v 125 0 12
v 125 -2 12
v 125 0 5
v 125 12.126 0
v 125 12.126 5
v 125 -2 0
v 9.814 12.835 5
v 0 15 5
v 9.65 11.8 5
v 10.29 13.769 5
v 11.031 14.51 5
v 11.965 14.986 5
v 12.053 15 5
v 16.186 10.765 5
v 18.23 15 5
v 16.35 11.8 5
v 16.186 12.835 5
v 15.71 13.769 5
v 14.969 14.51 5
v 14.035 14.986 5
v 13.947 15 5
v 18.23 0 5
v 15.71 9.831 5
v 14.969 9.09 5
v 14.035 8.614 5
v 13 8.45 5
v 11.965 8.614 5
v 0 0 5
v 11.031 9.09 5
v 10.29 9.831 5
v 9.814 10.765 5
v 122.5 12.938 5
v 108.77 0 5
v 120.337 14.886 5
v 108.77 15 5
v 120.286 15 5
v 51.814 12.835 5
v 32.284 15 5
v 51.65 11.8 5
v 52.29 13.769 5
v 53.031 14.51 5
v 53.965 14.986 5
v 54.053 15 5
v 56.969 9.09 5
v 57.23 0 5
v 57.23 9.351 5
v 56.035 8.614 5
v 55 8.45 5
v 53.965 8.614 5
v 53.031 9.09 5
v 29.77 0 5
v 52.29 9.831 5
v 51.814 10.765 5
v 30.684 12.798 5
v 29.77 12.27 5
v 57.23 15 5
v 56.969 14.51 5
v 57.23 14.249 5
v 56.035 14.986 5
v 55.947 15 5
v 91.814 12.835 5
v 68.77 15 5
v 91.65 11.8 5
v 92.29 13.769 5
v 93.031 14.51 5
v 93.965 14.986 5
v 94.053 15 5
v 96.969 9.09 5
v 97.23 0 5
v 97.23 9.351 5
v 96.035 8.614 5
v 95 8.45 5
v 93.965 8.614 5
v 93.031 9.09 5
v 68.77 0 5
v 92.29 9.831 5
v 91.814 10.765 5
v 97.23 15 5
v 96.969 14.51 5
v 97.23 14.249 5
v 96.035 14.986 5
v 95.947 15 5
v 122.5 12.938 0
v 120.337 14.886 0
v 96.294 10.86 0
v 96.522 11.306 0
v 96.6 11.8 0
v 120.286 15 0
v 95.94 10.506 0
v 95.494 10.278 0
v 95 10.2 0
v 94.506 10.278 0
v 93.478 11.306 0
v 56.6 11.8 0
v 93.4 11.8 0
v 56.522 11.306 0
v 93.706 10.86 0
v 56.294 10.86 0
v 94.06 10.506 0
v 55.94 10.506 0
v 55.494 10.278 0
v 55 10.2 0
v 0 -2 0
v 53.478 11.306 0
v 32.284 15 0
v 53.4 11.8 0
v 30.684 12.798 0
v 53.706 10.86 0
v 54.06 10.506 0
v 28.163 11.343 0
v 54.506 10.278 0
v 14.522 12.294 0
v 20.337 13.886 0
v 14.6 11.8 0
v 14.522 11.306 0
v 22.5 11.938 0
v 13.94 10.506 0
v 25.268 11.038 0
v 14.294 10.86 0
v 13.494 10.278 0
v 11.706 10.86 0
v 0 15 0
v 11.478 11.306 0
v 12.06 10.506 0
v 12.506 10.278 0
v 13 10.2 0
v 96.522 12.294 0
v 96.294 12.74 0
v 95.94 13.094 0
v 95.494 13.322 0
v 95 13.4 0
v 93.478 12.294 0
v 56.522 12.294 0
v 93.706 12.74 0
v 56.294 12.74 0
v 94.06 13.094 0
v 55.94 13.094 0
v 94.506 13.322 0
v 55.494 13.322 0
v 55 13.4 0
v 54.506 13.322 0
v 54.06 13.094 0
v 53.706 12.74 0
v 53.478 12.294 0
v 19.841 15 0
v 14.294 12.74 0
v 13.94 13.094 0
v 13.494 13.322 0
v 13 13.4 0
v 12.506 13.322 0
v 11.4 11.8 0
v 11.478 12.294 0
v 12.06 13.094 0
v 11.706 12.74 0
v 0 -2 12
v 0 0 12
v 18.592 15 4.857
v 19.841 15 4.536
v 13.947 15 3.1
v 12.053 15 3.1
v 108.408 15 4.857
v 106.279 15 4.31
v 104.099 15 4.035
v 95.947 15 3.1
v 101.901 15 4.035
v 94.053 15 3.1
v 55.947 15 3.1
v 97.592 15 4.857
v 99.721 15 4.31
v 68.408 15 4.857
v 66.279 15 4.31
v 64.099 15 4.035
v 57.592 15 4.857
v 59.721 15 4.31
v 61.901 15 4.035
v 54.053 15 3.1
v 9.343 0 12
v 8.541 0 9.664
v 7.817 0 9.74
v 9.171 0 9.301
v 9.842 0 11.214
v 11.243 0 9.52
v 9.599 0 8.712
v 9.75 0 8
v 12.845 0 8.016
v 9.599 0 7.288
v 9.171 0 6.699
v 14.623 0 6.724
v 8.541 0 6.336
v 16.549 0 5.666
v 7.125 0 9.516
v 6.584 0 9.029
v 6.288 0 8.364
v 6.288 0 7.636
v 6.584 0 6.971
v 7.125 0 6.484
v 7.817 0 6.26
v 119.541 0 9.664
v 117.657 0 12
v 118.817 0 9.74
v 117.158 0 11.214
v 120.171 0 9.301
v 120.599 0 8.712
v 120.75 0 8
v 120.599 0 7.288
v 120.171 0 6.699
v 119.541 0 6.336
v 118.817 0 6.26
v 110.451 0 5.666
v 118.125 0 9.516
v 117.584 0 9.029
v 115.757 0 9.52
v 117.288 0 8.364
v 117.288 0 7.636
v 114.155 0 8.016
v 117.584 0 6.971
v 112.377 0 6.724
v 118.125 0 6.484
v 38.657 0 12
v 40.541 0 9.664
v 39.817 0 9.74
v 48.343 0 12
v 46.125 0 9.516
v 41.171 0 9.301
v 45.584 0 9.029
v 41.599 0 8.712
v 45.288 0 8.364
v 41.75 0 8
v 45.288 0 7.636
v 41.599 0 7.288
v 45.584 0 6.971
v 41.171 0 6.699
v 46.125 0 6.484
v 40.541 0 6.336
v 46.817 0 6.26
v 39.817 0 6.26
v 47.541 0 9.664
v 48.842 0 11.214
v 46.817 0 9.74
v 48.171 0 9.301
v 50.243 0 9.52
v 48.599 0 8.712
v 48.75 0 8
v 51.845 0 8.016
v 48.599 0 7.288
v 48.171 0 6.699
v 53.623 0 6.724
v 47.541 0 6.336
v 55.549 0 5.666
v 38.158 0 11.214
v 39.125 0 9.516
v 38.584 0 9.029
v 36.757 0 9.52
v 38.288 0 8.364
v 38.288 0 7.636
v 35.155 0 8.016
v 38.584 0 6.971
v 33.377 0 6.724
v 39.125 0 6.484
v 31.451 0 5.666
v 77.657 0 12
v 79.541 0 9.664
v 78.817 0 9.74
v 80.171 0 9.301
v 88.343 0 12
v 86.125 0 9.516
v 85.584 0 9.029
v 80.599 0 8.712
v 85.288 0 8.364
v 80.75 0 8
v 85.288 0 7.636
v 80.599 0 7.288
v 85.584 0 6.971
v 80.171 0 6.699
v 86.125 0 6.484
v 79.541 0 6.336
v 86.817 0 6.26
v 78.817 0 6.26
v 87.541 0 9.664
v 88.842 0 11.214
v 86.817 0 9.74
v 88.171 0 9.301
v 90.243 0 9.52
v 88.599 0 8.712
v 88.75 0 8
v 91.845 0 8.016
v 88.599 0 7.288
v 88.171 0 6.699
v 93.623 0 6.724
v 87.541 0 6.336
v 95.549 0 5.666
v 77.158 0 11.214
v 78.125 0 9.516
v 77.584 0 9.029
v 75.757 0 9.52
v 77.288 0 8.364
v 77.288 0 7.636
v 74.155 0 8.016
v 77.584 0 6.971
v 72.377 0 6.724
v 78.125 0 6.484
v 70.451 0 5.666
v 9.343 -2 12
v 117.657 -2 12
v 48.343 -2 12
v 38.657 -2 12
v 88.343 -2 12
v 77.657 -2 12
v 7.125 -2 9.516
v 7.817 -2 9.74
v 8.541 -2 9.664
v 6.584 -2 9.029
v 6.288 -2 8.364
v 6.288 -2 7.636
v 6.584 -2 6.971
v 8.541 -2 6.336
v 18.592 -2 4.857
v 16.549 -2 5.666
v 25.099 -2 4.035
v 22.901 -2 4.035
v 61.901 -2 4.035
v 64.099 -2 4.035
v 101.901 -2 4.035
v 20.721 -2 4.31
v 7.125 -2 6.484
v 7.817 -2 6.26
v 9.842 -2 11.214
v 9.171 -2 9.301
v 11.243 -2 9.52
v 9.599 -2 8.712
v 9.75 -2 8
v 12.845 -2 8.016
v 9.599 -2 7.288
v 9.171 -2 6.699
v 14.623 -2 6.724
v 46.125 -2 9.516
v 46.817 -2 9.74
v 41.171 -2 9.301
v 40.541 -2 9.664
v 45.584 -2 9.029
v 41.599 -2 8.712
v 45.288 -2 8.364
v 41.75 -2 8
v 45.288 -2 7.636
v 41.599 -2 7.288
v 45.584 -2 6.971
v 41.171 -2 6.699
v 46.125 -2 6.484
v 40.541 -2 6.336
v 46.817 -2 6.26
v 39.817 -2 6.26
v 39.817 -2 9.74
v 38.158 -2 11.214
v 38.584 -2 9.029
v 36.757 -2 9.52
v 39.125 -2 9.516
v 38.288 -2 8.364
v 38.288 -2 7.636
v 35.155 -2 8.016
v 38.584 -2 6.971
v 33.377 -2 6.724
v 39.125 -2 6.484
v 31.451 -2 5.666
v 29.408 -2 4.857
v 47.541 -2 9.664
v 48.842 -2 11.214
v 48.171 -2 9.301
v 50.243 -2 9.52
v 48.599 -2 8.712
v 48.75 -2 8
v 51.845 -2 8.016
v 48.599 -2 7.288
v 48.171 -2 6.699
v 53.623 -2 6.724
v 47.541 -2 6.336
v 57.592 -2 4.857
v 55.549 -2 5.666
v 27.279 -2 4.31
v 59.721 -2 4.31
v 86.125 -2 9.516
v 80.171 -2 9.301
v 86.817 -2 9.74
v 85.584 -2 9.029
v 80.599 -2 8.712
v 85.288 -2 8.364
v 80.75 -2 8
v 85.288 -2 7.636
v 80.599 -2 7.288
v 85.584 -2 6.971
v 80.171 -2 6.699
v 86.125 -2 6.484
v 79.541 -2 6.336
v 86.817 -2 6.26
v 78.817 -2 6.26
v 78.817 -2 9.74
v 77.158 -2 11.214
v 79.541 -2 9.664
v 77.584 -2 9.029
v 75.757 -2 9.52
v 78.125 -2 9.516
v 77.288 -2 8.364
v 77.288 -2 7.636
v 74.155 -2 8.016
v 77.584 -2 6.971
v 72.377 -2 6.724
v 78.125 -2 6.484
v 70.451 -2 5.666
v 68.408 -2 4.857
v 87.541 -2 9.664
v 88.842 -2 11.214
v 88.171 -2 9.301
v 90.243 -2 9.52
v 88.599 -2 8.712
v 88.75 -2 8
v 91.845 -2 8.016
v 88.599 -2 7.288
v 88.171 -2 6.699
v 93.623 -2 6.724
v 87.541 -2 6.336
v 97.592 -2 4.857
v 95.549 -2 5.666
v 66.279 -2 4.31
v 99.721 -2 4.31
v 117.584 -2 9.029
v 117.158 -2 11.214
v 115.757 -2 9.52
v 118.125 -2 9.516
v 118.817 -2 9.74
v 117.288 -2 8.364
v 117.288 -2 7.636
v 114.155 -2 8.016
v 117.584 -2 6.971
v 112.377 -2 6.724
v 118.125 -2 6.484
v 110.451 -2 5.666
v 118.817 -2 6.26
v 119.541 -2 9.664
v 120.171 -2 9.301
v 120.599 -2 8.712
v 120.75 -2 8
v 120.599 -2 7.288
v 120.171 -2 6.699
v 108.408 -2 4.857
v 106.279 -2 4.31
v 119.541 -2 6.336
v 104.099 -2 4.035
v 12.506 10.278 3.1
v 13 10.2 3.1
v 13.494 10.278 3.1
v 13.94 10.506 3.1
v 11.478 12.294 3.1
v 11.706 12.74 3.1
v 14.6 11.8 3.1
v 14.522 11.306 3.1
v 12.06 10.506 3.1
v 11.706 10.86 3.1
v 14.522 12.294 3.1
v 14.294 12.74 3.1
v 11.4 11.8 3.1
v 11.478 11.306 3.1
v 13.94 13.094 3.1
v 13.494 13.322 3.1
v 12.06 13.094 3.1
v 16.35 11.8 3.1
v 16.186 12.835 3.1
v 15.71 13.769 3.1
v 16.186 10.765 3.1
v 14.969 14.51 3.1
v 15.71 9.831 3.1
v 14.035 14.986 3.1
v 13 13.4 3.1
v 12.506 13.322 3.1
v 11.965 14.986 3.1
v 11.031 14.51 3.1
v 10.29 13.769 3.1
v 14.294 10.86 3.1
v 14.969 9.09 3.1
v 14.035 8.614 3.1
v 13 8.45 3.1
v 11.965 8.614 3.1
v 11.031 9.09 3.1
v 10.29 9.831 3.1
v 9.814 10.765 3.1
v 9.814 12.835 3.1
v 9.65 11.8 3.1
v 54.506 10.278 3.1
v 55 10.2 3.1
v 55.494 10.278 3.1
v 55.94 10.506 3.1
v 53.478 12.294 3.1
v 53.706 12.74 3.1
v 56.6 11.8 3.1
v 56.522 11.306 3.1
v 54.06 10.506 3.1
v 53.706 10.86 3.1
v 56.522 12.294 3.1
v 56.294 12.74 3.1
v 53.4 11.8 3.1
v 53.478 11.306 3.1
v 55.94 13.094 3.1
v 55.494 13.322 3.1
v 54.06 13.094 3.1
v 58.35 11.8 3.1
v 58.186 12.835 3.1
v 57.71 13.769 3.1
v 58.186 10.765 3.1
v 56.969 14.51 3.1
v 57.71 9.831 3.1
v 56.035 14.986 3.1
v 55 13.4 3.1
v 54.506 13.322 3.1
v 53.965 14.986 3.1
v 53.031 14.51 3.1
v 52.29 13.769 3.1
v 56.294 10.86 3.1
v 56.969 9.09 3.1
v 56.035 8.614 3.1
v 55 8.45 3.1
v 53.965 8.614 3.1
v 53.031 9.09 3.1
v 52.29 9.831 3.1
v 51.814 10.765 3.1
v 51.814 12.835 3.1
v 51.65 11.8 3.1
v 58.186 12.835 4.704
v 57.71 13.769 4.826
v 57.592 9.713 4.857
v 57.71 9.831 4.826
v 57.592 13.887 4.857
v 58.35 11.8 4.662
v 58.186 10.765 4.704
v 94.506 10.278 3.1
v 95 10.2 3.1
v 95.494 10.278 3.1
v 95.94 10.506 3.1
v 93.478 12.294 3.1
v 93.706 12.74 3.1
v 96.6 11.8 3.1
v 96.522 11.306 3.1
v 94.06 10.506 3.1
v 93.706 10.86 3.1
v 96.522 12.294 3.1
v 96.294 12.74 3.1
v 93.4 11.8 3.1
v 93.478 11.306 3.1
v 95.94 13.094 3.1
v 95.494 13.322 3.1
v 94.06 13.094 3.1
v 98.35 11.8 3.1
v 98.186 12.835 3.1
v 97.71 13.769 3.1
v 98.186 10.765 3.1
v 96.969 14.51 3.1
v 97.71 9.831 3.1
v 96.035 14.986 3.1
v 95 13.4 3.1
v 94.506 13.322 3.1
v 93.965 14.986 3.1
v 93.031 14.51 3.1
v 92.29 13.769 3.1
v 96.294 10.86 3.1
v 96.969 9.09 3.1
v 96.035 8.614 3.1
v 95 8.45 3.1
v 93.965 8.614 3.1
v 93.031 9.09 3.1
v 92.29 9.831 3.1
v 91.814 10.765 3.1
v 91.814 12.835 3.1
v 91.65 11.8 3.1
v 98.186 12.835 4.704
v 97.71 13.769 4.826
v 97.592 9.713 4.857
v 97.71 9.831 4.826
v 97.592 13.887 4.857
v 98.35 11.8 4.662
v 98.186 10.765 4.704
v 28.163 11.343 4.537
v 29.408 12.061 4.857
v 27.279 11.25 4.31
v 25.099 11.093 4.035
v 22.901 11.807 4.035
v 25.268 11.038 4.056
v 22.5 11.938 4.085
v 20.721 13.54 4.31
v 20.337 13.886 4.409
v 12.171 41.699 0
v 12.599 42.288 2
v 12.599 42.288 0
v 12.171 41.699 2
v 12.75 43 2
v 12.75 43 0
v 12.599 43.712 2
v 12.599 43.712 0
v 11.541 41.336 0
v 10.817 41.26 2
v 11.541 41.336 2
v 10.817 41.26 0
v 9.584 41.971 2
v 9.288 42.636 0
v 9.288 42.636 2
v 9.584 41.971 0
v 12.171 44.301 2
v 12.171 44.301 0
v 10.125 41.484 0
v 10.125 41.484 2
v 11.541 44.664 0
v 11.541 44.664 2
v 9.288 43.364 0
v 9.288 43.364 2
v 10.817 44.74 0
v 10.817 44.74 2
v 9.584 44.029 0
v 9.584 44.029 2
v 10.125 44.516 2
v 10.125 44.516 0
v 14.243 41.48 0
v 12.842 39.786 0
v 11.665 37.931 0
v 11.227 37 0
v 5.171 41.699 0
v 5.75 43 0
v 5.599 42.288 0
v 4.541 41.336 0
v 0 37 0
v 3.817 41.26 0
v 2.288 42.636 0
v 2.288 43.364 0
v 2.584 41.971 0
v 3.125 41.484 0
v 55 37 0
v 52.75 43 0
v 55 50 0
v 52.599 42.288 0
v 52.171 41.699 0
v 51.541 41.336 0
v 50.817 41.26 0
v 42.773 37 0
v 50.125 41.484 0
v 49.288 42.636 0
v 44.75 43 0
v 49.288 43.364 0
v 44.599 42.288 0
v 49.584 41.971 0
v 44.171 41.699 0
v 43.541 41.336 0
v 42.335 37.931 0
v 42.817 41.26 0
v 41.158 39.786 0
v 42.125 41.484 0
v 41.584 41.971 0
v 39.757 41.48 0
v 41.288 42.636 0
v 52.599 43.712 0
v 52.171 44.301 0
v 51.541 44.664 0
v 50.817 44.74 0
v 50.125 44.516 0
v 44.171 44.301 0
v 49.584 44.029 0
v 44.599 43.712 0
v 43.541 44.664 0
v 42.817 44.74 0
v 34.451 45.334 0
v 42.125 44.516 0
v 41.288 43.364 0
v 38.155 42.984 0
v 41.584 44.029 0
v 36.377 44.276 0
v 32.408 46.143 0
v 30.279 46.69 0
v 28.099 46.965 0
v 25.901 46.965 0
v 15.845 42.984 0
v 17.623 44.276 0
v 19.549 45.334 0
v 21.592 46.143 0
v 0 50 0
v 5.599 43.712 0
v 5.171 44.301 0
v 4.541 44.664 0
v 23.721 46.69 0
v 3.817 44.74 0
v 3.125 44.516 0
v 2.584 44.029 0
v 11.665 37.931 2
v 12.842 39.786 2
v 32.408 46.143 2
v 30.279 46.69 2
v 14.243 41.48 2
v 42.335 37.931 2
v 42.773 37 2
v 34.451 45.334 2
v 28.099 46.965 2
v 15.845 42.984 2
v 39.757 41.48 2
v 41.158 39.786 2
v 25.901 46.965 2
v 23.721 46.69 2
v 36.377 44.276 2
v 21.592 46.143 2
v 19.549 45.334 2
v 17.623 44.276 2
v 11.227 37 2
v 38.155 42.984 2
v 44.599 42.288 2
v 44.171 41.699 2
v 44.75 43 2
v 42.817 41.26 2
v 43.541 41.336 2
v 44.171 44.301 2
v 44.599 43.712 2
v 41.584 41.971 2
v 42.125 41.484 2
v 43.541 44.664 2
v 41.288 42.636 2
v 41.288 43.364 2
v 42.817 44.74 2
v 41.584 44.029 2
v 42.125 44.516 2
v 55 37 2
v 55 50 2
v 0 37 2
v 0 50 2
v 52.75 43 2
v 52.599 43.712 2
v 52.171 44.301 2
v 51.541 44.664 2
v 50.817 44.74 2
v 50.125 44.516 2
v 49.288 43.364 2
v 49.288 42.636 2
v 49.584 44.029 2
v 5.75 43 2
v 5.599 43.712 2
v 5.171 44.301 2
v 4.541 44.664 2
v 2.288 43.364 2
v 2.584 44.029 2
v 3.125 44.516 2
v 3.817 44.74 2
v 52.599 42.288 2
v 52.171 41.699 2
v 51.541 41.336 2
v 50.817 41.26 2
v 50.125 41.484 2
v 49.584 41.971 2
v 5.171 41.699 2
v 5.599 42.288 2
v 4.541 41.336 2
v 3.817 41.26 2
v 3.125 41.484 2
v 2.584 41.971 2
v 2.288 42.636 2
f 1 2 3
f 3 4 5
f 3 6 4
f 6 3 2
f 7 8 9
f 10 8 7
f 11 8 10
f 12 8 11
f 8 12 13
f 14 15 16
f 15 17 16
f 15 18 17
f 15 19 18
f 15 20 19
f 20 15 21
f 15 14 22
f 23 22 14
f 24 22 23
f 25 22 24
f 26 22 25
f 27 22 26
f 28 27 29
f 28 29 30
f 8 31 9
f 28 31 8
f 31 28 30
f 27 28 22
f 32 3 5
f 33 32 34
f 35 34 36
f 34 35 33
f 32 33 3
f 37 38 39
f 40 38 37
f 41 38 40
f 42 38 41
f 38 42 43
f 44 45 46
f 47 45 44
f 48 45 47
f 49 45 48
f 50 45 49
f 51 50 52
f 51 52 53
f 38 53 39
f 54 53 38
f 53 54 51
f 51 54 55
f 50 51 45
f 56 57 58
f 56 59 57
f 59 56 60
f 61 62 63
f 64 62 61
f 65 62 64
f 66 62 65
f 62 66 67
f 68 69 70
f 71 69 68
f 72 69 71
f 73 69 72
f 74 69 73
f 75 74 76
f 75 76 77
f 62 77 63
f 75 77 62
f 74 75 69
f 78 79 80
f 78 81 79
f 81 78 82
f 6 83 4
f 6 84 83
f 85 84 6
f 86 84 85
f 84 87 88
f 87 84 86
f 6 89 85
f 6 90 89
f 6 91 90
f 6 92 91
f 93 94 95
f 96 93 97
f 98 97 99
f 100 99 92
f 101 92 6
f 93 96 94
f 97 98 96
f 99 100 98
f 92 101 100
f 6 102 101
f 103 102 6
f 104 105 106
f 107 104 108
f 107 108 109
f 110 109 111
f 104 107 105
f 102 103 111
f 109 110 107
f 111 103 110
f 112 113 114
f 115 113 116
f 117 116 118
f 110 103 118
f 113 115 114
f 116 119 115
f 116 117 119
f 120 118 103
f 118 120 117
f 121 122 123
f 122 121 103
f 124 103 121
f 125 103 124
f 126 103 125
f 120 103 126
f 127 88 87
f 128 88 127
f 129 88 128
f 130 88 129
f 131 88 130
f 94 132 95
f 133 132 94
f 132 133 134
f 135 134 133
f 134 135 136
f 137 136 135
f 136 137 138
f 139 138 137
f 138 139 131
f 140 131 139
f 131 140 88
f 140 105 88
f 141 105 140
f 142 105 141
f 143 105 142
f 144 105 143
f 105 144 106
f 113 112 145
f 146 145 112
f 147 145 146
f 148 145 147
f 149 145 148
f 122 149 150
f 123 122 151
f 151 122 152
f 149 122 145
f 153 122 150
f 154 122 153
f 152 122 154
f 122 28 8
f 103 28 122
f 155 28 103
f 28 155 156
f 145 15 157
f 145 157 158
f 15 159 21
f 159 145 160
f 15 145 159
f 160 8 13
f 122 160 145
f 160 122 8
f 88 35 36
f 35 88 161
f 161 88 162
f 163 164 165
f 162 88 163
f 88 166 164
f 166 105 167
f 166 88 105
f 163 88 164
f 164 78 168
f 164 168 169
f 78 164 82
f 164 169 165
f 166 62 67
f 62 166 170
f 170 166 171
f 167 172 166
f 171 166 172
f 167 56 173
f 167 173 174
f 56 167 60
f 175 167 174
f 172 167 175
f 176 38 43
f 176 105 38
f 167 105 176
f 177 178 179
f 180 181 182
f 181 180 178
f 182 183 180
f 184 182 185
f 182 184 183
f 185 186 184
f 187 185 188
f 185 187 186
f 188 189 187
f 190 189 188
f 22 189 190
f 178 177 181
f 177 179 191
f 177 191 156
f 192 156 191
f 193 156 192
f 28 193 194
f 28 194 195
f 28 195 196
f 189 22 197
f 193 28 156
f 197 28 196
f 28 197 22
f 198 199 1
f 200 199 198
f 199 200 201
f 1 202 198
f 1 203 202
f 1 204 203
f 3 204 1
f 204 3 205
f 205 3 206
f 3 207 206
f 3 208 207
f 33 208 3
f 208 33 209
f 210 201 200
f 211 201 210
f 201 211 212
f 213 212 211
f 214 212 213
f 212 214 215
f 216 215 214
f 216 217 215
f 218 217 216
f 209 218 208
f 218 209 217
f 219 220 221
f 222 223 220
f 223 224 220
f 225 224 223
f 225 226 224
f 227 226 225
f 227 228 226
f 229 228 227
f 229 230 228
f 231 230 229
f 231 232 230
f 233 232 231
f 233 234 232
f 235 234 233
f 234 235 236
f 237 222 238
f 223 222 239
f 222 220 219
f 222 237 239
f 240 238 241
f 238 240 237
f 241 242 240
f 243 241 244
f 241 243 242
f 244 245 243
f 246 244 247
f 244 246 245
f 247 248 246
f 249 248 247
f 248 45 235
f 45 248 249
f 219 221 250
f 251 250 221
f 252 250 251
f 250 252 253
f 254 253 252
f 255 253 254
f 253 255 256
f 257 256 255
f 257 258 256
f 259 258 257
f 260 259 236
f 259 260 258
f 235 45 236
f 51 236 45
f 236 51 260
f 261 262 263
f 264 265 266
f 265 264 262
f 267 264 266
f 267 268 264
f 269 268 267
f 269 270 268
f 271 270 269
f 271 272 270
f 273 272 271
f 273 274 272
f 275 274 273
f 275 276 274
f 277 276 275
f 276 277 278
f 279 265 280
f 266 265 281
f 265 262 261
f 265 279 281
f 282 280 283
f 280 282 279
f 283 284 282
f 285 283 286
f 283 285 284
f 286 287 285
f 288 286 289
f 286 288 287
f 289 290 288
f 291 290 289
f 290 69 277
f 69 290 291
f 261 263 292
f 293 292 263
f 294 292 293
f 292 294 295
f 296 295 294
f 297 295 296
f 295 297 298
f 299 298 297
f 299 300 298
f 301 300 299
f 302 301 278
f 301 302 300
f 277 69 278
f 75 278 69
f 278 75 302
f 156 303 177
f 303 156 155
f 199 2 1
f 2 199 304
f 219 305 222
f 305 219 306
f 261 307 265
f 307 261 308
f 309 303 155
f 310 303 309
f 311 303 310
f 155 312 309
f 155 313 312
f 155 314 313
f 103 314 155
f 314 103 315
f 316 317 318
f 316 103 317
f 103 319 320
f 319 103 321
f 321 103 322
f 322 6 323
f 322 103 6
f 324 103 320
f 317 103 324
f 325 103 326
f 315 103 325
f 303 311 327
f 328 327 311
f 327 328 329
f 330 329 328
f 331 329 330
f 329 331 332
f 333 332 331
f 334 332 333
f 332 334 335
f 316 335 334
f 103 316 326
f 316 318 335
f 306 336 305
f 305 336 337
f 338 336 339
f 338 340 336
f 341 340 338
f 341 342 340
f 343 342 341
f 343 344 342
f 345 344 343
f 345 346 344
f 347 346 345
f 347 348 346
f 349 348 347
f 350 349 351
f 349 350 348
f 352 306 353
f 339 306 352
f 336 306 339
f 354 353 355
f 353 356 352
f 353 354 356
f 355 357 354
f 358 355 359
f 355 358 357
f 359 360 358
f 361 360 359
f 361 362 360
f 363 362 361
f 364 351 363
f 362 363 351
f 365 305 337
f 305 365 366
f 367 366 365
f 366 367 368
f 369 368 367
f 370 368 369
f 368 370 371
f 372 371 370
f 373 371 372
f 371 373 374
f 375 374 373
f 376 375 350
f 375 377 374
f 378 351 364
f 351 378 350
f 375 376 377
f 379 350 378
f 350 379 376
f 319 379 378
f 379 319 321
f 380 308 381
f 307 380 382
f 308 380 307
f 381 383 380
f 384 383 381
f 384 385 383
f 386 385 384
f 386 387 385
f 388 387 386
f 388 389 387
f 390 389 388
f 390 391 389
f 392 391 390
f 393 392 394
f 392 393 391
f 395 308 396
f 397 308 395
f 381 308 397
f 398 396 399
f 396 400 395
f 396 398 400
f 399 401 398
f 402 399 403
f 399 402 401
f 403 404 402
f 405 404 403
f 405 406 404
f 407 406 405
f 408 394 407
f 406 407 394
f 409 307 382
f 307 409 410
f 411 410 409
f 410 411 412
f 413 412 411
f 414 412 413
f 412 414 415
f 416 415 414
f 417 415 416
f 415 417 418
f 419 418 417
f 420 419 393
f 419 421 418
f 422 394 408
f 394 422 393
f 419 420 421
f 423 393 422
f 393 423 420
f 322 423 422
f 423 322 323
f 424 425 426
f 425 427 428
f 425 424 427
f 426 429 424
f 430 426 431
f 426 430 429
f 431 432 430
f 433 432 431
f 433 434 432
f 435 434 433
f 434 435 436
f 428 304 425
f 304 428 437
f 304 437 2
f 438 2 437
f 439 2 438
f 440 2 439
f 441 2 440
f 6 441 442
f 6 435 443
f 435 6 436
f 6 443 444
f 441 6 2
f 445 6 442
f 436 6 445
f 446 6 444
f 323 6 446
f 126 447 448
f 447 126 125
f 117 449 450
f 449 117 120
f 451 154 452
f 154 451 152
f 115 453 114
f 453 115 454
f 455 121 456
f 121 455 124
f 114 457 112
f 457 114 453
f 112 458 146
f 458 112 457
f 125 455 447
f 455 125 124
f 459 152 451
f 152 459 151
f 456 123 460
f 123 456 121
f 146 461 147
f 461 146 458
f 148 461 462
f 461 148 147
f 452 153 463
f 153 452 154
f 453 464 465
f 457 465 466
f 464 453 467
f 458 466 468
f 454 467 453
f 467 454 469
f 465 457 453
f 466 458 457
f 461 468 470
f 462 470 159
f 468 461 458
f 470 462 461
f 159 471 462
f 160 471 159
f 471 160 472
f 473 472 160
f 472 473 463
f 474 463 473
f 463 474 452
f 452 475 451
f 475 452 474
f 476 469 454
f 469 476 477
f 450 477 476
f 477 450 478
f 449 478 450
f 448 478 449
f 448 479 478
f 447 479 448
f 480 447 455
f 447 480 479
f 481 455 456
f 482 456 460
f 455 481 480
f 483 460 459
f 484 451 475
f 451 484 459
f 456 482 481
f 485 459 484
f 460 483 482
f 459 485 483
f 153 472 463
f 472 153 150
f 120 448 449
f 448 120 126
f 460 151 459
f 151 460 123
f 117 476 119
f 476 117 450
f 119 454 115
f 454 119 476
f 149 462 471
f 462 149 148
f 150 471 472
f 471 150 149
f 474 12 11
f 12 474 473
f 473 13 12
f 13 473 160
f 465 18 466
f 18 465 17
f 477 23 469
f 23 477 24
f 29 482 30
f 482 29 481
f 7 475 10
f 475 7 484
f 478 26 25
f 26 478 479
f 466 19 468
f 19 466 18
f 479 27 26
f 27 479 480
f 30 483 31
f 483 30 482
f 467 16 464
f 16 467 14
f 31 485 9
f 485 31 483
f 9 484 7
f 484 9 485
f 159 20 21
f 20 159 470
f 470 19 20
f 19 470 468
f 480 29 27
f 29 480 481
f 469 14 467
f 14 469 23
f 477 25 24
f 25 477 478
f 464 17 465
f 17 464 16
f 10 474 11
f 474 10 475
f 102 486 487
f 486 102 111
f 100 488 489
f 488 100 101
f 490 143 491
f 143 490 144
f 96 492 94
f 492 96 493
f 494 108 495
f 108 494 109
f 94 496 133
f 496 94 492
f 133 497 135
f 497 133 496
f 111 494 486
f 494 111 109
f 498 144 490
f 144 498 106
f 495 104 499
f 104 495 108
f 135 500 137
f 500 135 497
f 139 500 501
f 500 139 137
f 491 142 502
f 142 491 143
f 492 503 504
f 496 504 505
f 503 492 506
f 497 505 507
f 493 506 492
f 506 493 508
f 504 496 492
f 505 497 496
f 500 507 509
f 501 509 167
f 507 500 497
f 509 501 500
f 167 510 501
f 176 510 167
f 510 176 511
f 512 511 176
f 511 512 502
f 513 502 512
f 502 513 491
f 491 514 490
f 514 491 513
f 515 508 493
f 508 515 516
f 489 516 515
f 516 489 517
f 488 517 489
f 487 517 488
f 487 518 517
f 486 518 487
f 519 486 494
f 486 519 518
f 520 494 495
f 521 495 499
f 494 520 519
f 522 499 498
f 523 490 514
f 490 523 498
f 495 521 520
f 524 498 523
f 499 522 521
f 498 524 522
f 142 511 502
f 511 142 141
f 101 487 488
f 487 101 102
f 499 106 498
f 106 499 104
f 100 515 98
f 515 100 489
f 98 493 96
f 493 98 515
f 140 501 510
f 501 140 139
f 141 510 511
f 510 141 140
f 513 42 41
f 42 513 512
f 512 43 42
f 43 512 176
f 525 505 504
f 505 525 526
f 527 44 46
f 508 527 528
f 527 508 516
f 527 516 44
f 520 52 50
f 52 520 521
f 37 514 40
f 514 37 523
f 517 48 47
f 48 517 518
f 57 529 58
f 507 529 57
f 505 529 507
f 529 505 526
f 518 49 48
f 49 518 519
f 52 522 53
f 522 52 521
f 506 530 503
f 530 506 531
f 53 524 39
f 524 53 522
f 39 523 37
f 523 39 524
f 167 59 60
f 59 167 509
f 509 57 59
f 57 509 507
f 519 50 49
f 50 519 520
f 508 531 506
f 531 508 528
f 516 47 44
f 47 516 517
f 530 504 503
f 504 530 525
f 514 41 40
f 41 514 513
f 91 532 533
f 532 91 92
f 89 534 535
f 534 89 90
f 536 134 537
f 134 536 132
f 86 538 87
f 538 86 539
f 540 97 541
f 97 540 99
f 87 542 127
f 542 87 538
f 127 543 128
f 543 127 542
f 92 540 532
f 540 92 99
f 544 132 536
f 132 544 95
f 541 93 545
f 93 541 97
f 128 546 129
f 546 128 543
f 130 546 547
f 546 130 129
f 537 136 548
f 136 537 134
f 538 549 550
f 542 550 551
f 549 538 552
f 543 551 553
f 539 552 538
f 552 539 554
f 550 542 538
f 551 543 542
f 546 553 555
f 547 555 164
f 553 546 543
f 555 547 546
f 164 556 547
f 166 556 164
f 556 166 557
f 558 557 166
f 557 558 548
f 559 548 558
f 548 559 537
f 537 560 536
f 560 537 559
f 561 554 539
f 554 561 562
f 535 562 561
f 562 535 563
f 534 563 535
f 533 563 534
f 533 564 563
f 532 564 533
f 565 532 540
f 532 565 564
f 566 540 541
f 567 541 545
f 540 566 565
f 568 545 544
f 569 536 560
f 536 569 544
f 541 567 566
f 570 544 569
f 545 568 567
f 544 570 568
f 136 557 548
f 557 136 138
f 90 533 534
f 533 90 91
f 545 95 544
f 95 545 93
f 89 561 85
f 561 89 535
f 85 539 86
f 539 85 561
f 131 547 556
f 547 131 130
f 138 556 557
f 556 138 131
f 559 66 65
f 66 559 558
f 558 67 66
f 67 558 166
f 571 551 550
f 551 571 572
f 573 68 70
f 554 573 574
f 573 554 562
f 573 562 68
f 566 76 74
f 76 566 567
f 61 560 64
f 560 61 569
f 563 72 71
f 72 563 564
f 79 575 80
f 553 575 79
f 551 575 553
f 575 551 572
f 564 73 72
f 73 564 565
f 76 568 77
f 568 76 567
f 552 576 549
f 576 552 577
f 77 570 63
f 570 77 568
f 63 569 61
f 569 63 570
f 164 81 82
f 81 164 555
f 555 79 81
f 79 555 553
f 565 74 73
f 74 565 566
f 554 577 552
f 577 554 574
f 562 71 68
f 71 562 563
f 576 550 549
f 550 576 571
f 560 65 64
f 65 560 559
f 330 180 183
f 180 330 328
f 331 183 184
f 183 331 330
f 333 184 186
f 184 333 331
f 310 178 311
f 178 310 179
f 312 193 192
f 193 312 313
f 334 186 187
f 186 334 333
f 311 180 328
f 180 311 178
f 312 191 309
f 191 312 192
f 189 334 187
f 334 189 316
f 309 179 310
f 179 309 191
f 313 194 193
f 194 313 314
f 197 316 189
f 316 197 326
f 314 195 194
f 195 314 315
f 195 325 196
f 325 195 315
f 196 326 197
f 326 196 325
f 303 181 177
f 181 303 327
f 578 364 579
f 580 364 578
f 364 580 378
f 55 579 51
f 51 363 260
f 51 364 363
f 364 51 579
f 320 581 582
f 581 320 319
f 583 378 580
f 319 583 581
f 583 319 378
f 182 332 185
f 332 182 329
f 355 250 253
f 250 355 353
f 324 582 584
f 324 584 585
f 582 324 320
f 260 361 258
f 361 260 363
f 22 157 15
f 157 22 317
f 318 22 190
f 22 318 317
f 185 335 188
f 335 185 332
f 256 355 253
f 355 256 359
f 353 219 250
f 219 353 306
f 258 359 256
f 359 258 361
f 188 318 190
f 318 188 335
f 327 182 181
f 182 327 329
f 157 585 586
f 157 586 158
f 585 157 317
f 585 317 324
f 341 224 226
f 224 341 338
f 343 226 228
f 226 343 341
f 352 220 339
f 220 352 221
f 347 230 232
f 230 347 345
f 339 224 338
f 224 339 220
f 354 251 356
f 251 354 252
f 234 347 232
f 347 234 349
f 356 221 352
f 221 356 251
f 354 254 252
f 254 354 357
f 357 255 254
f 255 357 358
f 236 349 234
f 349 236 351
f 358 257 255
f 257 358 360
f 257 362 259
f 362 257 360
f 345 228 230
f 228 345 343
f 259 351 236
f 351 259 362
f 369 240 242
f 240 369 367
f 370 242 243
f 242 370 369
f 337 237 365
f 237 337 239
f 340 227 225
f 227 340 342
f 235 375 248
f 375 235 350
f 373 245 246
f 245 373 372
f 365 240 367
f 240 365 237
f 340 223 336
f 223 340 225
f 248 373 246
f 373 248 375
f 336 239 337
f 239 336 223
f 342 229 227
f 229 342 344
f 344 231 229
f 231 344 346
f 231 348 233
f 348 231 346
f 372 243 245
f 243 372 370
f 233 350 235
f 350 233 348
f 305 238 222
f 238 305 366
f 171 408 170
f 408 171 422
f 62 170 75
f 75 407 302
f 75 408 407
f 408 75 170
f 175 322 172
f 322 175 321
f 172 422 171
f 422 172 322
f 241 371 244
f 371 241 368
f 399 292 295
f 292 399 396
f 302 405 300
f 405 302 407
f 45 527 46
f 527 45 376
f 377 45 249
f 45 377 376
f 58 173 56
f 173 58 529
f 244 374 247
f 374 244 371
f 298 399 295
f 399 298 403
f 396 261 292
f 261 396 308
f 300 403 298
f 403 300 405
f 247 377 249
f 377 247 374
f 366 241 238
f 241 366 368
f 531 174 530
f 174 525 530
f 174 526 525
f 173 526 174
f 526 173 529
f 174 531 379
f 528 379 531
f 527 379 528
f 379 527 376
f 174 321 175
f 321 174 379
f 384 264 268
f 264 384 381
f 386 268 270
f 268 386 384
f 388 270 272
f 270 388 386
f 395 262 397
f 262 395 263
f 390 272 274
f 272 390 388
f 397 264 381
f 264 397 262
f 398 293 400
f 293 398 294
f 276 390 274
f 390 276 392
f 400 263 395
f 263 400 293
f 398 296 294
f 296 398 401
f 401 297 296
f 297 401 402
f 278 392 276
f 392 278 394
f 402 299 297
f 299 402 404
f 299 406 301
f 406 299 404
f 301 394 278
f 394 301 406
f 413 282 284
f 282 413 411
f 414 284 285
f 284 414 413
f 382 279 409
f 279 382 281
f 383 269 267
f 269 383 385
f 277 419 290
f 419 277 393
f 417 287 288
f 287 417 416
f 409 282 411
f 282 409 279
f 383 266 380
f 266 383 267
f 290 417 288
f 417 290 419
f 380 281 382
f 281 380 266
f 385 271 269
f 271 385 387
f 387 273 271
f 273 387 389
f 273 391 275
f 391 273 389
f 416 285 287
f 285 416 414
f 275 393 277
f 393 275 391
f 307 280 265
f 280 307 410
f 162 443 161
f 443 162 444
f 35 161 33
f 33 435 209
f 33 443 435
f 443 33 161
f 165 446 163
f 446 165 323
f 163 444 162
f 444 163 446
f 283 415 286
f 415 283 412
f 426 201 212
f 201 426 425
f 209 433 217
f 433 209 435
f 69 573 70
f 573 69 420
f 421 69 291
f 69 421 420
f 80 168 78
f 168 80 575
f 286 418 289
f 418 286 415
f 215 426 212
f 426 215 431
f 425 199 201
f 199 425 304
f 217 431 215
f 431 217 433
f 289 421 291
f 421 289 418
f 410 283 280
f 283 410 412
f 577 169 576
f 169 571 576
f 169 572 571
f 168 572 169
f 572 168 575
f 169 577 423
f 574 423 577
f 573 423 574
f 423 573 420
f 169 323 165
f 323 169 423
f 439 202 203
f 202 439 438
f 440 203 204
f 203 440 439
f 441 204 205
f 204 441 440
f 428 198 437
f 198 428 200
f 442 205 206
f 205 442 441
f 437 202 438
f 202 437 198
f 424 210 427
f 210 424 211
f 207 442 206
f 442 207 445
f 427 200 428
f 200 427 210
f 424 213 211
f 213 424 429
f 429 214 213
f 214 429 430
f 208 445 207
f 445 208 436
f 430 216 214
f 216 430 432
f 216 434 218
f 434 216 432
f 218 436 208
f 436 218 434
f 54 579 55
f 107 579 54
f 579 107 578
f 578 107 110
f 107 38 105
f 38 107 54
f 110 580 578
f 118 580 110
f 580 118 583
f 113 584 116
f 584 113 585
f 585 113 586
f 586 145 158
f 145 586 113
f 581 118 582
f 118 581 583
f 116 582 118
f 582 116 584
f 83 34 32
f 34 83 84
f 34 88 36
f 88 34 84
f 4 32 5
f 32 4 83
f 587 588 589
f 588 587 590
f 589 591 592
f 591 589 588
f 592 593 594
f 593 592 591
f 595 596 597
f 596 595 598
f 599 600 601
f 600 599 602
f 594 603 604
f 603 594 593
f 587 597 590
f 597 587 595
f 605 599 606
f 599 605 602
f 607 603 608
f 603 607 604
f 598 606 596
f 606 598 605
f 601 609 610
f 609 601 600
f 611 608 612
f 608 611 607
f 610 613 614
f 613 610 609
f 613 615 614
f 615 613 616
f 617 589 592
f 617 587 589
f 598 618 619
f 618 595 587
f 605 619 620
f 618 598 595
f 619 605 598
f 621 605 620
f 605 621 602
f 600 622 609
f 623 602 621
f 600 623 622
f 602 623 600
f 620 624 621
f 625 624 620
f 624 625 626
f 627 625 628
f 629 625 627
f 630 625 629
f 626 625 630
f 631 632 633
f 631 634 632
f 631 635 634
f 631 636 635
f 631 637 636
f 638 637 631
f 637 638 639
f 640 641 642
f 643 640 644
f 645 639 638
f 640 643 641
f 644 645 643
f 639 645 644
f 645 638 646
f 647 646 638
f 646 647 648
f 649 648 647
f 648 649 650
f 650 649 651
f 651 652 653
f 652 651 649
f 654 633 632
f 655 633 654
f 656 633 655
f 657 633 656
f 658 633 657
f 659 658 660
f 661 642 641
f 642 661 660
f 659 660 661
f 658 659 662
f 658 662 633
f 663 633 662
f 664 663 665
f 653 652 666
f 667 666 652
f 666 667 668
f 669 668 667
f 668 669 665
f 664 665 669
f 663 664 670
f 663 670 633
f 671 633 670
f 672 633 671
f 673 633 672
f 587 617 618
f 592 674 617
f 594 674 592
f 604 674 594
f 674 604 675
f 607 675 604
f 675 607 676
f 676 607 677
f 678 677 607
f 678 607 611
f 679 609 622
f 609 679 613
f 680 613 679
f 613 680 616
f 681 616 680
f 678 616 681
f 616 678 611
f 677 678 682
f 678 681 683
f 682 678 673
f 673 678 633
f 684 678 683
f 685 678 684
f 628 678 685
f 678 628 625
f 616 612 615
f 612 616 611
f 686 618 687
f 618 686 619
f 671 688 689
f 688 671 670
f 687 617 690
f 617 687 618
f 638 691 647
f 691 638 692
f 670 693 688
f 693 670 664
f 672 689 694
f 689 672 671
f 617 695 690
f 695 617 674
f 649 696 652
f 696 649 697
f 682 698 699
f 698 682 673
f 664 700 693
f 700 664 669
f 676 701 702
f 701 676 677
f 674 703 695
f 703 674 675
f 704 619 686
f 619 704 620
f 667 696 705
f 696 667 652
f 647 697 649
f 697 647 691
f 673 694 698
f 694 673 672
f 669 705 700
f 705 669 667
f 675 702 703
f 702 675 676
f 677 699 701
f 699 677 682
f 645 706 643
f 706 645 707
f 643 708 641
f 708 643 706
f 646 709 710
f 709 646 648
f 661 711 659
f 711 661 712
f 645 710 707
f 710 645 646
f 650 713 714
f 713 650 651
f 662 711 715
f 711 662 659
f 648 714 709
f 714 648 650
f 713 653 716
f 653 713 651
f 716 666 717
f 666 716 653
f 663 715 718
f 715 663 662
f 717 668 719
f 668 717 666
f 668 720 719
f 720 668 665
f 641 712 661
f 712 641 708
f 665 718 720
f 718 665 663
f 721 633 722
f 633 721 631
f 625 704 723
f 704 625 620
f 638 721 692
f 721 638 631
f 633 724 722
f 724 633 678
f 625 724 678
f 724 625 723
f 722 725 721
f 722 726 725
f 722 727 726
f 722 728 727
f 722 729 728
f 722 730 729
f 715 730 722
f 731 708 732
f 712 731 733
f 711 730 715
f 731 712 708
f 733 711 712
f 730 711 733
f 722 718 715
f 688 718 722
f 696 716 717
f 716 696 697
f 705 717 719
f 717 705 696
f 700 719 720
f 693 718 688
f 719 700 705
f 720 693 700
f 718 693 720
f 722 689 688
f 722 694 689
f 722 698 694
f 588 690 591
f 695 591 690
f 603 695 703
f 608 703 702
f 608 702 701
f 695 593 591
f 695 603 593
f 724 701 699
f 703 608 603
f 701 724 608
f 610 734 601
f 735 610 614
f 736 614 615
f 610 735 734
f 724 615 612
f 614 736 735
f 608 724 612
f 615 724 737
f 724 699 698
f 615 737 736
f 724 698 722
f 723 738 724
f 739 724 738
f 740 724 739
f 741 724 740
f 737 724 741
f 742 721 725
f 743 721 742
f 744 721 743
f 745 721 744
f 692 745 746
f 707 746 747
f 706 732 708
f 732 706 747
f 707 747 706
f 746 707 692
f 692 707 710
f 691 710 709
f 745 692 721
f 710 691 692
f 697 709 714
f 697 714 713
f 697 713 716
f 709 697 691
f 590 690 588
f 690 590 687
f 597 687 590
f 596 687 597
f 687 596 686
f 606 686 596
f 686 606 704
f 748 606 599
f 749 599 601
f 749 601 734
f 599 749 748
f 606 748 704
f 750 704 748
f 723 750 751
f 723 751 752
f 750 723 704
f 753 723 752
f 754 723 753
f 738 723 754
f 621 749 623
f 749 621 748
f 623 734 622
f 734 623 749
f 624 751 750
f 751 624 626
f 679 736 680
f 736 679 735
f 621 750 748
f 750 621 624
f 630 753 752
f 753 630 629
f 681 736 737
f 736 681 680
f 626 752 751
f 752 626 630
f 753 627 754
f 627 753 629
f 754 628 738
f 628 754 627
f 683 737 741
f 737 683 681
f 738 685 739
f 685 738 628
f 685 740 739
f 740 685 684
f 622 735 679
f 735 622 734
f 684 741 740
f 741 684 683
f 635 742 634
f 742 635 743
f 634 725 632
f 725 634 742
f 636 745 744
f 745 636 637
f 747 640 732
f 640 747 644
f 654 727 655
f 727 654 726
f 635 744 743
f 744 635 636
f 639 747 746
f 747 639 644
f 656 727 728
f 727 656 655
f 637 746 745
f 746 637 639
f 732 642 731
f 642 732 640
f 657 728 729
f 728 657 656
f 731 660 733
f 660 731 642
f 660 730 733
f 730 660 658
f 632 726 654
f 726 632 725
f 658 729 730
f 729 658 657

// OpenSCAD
// file: ../libs/hardware-recess.scad
/*
 * A library to make capture holes in material for M3 & M5 hardware and some
 * common mounting patterns.
 * Copyright 2021 Alex Volkov <alex@flamy.ca>
 *
 * Project URL
 * https://github.com/avolkov/openscad-designs
 *
 * License: Attribution-ShareAlike 4.0 International (CC BY-SA)
 * https://creativecommons.org/licenses/by-sa/4.0/
 *
 * Version 0.1 2021-04-05 Initial publication
 */

// Common mounting patterns
ear_thick=8;
stacked_len = ear_thick*3;
screw_mount_space = 20;
screw_mount_offset =7;
total_len = stacked_len + screw_mount_space*2;
mounting_diff = 8;


//Globals for hardware diameters
M3_THREAD_RAD = 1.5;
M5_THREAD_RAD = 2.6;


m3_nut_trap_d = 6.7;
m3_nut_thick= 2.4;

//M3 fastener values
m3_bolt_head_d = 5.6;
m3_bolt_thick = 3.2;

//M5 fastener values
m5_nut_thick = 4;
m5_locknut_thick = 5;
nut_trap_d = 9.7;
bolt_head_d = 8.6;
m5_bolt_head_d = bolt_head_d;


module bolt_nut(hole_len, bolt_d, flip=false){
    /*
    Create a model for a hole with bolt end on one end and nut hole on the other end.
    Note, this functions doesn't subtract the model it only makes the model

    :hole_len: total length of the hole
    :bolt_d: diameter of a blot
    :flip: flip the side with bolt recess
    */
    // currently only implemented for 3mm
    if (flip){
        hole_w_end(hole_len, m3_nut_thick, "hex", bolt_d);
        translate([0,0, hole_len]){
            rotate([180, 0, 0]){
                hole_w_end(hole_len, m3_bolt_thick, "round", bolt_d);
            }
        }
    } else {
        hole_w_end(hole_len, m3_bolt_thick, "round", bolt_d);
        translate([0,0, hole_len]){
            rotate([180, 0, 0]){
                hole_w_end(hole_len, m3_nut_thick, "hex", bolt_d);
            }
        }
    }
}


module hole_w_end(hole_len, trap_height, type, bolt_d, flip=false){
    /*
    Make a hole with an end for bolt or a nut.
    This is a more generic functions replacing m5_ hole-making functions.

    :bolt_d: bolt diameter, i.e. 3, 5 mm
    :type: type of the head hole: 'none', 'hex', 'round
    */
    if (type != "none"){
        cylinder(h=hole_len-trap_height, d=bolt_d, $fn=20);
        if (flip){
            m_recess(trap_height, type, bolt_d);
            translate([0,0,trap_height])
                cylinder(h=hole_len-trap_height, d=bolt_d, $fn=20);

        } else {
                translate([0,0, hole_len - trap_height])
                    m_recess(trap_height, type, bolt_d);
        }
    } else {
        cylinder(h=hole_len, d=bolt_d);
    }
}

module m_recess(length, end_type, bolt_d) {
    /*
    Create nut or bolt capture hole

    :height: length of a mounting hole, including end-mounting hardware
    :end_type: type of the head hole: 'none', 'hex', 'round
    :bolt_d: bolt diameter, i.e. 3, 5 mm
    */
    if (bolt_d >= 3 && bolt_d <= 4){
        //M3
        make_recess(length, end_type, m3_nut_trap_d);
    } else if (bolt_d >= 5 && bolt_d <= 6){
        // M5
        make_recess(length, end_type, nut_trap_d);
    }

}

module make_recess(height, end_type, trap_d){
    /*
    Make recess to capture
    */
    rotate([0, 0,90]){
        if (end_type == "hex"){
            cylinder(h=height, d=trap_d, $fn=6);
        } else if (end_type == "round"){
            cylinder(h=height, d=trap_d, $fn=20);
        }
    }
}


//Functions specific to M5 size,
// TODO rewrite as hole_w_end m_recess
module m5_recess(height, end_type) {
    // nut/bolt capture hole
    rotate([0, 0,90]){
        if (end_type == "hex"){
            cylinder(h=height, d=nut_trap_d, $fn=6);
        } else if (end_type == "round"){
            cylinder(h=height, d=nut_trap_d, $fn=20);
        }
    }
}



module m5_hole_w_end(hole_len, trap_height, type){
    //Given hole lenght and trap height create a nut trap hole
    if (type != "none"){
        cylinder(h=hole_len-trap_height, d=5.3, $fn=20); // M5 hole;
            translate([0,0, hole_len-trap_height])
                m5_recess(trap_height, type);
    } else {
        cylinder(h=hole_len, d=5.3); // M5 hole;
    }
}
module m5_hole_w_ends(hole_len, nut_extra=0){
    m5_hole_w_end(hole_len, m5_nut_thick, "round");
    rotate([0, 180, 0])
        translate([0, 0, - hole_len])
            m5_hole_w_end(hole_len, m5_nut_thick + nut_extra, "hex");
}

module m3_hole_w_ends(hole_len, nut_extra=0){
    hole_w_end(hole_len, m3_nut_thick, "round", m3_bolt_thick);
    hole_w_end(hole_len, m3_nut_thick, "hex", m3_bolt_thick, flip=true);
}

module set_mounting_hole(x_offset, y_offset, thickness, nut_height, end_type){
    /*
    Make a hole in an existing material
    end_type: one of hex, round, none
    */
    translate([x_offset, y_offset, 0]){
        m5_hole_w_end(thickness, nut_height, end_type);
    }
}

module m5_thread(height){
    cylinder(h=height, r1=M5_THREAD_RAD, r2=M5_THREAD_RAD, center=true, $fn=16);
}

module m3_thread(height){
    cylinder(h=height, r1=M3_THREAD_RAD, r2=M3_THREAD_RAD, center=true, $fn=16);
}

module m3_square_nut(depth, height){
    translate([0,0,1])
        cylinder(
        h=height, r1=M3_THREAD_RAD, r2=M3_THREAD_RAD, center=true, $fn=16);

    m_recess(m3_nut_thick, "hex",3);
    translate([0,0,-1])
        cylinder(
            h=depth, r1=M3_THREAD_RAD, r2=M3_THREAD_RAD, center=true, $fn=16);
}



//Mounting Patterns

module mounting_holes_2(fastener_len, nut_height, end_type){
    /* Two-hole mounting pattern for M5 bolts*/
    width_offsetn = 16;
    set_mounting_hole(
        screw_mount_offset,
        width_offset + mounting_diff,
        fastener_len,
        nut_height,
        end_type);

    set_mounting_hole(
        total_len - screw_mount_offset,
        width_offset + mounting_diff,
        fastener_len,
        nut_height,
        end_type);


 }

module mounting_holes(fastener_len, nut_height, end_type){
    /*Four-hole mounting pattern for M5 bolts*/
    width_offset = 16;
    set_mounting_hole(
        screw_mount_offset,
        width_offset + mounting_diff,
        fastener_len,
        nut_height,
        end_type);

    set_mounting_hole(
        screw_mount_offset,
        width_offset - mounting_diff,
        fastener_len,
        nut_height,
        end_type);

    // Side towards the end
    set_mounting_hole(
        total_len - screw_mount_offset,
        width_offset + mounting_diff,
        fastener_len,
        nut_height,
        end_type);

    set_mounting_hole(
        total_len - screw_mount_offset,
        width_offset - mounting_diff,
        fastener_len,
        nut_height,
        end_type);
}
// main file
include <../libs/hardware-recess.scad>;

$fn=15;
m3_d = 3.5;
mount_len = 125;
fan_d=35;

module bracket_mount(bolt_l, mount_offset){
        y_offset = mount_offset + 0.3;
        translate([13, y_offset, 0])hole_w_end(bolt_l+0.5, m3_nut_thick, "round", m3_bolt_thick);
        //translate([13, mount_offset,0]) cylinder(d=m3_d, h=bolt_l);
        translate([55, y_offset,0]) hole_w_end(bolt_l+0.5, m3_nut_thick, "round", m3_bolt_thick);
        translate([95, y_offset,0]) hole_w_end(bolt_l+0.5, m3_nut_thick, "round", m3_bolt_thick);
}

module fan_mount(duct_len){
    translate([8, 0, 8])
            rotate([90,0,0])
                cylinder(d=m3_d, h=5);
    translate([fan_d/2 + 6.5, 5 + duct_len, fan_d/2 + 4])
        rotate([90, 0, 0])
            cylinder(d=fan_d, h=20 + duct_len, $fn=50);
    translate([40, 0, 8])
            rotate([90,0,0])cylinder(d=m3_d, h=5);
}



module bottom_bracket(mount_offset) {
    //fan mounts on the side of the  mks board 
    //mount_offset --  Offset between board mounting screws and board for mounting fans
    difference(){
        union(){
            cube([mount_len, mount_offset, 5]);
            translate([0,-2, 0])
                cube([mount_len, 2, 12]);
        }
        translate([0, m3_d - 1, 0])bracket_mount(5, mount_offset - 6);
        fan_mount(mount_offset);
        translate([39, 0, 0])fan_mount(mount_offset);
        translate([79, 0, 0])fan_mount(mount_offset);
        translate([26, 18, 0])cylinder(d=14, h=5);
        translate([126, 19, 0])cylinder(d=14, h=5);
    }
}


module top_bracket() {
    bottom_offset = 5;
    difference(){
        cube([55, 2, 13]);
        translate([3,5, -1])
            fan_mount(0);
        translate([4, 5, 7])
            rotate([90, 0, 0])
                cylinder(d=m3_d, h=5);
        translate([51, 5, 7])
            rotate([90, 0, 0])
                cylinder(d=m3_d, h=5);
    }
}

translate([0,50,0])
    rotate([90, 0, 0])
        top_bracket();
bottom_bracket(15);
